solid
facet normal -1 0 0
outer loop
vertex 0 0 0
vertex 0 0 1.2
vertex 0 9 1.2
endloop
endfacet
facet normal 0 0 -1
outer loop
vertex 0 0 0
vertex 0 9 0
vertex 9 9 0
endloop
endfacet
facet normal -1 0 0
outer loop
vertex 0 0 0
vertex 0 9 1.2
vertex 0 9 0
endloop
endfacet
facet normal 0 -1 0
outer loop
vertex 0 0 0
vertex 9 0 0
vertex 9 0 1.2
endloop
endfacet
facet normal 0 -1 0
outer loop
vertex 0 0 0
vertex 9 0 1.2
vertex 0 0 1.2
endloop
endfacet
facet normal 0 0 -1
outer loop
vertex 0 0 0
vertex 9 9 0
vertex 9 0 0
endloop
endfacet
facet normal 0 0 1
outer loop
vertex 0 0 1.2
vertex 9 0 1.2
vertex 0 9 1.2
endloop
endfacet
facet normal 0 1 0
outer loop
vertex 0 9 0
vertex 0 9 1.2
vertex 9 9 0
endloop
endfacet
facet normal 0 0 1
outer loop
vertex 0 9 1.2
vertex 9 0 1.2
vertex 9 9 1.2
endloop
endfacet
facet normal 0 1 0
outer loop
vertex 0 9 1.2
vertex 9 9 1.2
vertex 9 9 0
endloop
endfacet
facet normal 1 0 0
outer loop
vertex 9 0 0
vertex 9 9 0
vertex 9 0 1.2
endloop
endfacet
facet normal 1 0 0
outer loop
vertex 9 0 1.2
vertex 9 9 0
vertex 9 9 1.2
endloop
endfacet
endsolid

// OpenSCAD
/* Warning, this is a very basic generator with a lot of approximation 
input data : [TFBGA, 6GW, 9x9x1.2mm, 256, , A, C04-00622A]
generated by com.zoubworld.electronics.cad.model3d.Basic
Date : Sun Feb 15 10:50:49 CET 2026
*/

//body
color("black")
translate([0,0,0])
cube([9.0,9.0,1.2], center=false);
